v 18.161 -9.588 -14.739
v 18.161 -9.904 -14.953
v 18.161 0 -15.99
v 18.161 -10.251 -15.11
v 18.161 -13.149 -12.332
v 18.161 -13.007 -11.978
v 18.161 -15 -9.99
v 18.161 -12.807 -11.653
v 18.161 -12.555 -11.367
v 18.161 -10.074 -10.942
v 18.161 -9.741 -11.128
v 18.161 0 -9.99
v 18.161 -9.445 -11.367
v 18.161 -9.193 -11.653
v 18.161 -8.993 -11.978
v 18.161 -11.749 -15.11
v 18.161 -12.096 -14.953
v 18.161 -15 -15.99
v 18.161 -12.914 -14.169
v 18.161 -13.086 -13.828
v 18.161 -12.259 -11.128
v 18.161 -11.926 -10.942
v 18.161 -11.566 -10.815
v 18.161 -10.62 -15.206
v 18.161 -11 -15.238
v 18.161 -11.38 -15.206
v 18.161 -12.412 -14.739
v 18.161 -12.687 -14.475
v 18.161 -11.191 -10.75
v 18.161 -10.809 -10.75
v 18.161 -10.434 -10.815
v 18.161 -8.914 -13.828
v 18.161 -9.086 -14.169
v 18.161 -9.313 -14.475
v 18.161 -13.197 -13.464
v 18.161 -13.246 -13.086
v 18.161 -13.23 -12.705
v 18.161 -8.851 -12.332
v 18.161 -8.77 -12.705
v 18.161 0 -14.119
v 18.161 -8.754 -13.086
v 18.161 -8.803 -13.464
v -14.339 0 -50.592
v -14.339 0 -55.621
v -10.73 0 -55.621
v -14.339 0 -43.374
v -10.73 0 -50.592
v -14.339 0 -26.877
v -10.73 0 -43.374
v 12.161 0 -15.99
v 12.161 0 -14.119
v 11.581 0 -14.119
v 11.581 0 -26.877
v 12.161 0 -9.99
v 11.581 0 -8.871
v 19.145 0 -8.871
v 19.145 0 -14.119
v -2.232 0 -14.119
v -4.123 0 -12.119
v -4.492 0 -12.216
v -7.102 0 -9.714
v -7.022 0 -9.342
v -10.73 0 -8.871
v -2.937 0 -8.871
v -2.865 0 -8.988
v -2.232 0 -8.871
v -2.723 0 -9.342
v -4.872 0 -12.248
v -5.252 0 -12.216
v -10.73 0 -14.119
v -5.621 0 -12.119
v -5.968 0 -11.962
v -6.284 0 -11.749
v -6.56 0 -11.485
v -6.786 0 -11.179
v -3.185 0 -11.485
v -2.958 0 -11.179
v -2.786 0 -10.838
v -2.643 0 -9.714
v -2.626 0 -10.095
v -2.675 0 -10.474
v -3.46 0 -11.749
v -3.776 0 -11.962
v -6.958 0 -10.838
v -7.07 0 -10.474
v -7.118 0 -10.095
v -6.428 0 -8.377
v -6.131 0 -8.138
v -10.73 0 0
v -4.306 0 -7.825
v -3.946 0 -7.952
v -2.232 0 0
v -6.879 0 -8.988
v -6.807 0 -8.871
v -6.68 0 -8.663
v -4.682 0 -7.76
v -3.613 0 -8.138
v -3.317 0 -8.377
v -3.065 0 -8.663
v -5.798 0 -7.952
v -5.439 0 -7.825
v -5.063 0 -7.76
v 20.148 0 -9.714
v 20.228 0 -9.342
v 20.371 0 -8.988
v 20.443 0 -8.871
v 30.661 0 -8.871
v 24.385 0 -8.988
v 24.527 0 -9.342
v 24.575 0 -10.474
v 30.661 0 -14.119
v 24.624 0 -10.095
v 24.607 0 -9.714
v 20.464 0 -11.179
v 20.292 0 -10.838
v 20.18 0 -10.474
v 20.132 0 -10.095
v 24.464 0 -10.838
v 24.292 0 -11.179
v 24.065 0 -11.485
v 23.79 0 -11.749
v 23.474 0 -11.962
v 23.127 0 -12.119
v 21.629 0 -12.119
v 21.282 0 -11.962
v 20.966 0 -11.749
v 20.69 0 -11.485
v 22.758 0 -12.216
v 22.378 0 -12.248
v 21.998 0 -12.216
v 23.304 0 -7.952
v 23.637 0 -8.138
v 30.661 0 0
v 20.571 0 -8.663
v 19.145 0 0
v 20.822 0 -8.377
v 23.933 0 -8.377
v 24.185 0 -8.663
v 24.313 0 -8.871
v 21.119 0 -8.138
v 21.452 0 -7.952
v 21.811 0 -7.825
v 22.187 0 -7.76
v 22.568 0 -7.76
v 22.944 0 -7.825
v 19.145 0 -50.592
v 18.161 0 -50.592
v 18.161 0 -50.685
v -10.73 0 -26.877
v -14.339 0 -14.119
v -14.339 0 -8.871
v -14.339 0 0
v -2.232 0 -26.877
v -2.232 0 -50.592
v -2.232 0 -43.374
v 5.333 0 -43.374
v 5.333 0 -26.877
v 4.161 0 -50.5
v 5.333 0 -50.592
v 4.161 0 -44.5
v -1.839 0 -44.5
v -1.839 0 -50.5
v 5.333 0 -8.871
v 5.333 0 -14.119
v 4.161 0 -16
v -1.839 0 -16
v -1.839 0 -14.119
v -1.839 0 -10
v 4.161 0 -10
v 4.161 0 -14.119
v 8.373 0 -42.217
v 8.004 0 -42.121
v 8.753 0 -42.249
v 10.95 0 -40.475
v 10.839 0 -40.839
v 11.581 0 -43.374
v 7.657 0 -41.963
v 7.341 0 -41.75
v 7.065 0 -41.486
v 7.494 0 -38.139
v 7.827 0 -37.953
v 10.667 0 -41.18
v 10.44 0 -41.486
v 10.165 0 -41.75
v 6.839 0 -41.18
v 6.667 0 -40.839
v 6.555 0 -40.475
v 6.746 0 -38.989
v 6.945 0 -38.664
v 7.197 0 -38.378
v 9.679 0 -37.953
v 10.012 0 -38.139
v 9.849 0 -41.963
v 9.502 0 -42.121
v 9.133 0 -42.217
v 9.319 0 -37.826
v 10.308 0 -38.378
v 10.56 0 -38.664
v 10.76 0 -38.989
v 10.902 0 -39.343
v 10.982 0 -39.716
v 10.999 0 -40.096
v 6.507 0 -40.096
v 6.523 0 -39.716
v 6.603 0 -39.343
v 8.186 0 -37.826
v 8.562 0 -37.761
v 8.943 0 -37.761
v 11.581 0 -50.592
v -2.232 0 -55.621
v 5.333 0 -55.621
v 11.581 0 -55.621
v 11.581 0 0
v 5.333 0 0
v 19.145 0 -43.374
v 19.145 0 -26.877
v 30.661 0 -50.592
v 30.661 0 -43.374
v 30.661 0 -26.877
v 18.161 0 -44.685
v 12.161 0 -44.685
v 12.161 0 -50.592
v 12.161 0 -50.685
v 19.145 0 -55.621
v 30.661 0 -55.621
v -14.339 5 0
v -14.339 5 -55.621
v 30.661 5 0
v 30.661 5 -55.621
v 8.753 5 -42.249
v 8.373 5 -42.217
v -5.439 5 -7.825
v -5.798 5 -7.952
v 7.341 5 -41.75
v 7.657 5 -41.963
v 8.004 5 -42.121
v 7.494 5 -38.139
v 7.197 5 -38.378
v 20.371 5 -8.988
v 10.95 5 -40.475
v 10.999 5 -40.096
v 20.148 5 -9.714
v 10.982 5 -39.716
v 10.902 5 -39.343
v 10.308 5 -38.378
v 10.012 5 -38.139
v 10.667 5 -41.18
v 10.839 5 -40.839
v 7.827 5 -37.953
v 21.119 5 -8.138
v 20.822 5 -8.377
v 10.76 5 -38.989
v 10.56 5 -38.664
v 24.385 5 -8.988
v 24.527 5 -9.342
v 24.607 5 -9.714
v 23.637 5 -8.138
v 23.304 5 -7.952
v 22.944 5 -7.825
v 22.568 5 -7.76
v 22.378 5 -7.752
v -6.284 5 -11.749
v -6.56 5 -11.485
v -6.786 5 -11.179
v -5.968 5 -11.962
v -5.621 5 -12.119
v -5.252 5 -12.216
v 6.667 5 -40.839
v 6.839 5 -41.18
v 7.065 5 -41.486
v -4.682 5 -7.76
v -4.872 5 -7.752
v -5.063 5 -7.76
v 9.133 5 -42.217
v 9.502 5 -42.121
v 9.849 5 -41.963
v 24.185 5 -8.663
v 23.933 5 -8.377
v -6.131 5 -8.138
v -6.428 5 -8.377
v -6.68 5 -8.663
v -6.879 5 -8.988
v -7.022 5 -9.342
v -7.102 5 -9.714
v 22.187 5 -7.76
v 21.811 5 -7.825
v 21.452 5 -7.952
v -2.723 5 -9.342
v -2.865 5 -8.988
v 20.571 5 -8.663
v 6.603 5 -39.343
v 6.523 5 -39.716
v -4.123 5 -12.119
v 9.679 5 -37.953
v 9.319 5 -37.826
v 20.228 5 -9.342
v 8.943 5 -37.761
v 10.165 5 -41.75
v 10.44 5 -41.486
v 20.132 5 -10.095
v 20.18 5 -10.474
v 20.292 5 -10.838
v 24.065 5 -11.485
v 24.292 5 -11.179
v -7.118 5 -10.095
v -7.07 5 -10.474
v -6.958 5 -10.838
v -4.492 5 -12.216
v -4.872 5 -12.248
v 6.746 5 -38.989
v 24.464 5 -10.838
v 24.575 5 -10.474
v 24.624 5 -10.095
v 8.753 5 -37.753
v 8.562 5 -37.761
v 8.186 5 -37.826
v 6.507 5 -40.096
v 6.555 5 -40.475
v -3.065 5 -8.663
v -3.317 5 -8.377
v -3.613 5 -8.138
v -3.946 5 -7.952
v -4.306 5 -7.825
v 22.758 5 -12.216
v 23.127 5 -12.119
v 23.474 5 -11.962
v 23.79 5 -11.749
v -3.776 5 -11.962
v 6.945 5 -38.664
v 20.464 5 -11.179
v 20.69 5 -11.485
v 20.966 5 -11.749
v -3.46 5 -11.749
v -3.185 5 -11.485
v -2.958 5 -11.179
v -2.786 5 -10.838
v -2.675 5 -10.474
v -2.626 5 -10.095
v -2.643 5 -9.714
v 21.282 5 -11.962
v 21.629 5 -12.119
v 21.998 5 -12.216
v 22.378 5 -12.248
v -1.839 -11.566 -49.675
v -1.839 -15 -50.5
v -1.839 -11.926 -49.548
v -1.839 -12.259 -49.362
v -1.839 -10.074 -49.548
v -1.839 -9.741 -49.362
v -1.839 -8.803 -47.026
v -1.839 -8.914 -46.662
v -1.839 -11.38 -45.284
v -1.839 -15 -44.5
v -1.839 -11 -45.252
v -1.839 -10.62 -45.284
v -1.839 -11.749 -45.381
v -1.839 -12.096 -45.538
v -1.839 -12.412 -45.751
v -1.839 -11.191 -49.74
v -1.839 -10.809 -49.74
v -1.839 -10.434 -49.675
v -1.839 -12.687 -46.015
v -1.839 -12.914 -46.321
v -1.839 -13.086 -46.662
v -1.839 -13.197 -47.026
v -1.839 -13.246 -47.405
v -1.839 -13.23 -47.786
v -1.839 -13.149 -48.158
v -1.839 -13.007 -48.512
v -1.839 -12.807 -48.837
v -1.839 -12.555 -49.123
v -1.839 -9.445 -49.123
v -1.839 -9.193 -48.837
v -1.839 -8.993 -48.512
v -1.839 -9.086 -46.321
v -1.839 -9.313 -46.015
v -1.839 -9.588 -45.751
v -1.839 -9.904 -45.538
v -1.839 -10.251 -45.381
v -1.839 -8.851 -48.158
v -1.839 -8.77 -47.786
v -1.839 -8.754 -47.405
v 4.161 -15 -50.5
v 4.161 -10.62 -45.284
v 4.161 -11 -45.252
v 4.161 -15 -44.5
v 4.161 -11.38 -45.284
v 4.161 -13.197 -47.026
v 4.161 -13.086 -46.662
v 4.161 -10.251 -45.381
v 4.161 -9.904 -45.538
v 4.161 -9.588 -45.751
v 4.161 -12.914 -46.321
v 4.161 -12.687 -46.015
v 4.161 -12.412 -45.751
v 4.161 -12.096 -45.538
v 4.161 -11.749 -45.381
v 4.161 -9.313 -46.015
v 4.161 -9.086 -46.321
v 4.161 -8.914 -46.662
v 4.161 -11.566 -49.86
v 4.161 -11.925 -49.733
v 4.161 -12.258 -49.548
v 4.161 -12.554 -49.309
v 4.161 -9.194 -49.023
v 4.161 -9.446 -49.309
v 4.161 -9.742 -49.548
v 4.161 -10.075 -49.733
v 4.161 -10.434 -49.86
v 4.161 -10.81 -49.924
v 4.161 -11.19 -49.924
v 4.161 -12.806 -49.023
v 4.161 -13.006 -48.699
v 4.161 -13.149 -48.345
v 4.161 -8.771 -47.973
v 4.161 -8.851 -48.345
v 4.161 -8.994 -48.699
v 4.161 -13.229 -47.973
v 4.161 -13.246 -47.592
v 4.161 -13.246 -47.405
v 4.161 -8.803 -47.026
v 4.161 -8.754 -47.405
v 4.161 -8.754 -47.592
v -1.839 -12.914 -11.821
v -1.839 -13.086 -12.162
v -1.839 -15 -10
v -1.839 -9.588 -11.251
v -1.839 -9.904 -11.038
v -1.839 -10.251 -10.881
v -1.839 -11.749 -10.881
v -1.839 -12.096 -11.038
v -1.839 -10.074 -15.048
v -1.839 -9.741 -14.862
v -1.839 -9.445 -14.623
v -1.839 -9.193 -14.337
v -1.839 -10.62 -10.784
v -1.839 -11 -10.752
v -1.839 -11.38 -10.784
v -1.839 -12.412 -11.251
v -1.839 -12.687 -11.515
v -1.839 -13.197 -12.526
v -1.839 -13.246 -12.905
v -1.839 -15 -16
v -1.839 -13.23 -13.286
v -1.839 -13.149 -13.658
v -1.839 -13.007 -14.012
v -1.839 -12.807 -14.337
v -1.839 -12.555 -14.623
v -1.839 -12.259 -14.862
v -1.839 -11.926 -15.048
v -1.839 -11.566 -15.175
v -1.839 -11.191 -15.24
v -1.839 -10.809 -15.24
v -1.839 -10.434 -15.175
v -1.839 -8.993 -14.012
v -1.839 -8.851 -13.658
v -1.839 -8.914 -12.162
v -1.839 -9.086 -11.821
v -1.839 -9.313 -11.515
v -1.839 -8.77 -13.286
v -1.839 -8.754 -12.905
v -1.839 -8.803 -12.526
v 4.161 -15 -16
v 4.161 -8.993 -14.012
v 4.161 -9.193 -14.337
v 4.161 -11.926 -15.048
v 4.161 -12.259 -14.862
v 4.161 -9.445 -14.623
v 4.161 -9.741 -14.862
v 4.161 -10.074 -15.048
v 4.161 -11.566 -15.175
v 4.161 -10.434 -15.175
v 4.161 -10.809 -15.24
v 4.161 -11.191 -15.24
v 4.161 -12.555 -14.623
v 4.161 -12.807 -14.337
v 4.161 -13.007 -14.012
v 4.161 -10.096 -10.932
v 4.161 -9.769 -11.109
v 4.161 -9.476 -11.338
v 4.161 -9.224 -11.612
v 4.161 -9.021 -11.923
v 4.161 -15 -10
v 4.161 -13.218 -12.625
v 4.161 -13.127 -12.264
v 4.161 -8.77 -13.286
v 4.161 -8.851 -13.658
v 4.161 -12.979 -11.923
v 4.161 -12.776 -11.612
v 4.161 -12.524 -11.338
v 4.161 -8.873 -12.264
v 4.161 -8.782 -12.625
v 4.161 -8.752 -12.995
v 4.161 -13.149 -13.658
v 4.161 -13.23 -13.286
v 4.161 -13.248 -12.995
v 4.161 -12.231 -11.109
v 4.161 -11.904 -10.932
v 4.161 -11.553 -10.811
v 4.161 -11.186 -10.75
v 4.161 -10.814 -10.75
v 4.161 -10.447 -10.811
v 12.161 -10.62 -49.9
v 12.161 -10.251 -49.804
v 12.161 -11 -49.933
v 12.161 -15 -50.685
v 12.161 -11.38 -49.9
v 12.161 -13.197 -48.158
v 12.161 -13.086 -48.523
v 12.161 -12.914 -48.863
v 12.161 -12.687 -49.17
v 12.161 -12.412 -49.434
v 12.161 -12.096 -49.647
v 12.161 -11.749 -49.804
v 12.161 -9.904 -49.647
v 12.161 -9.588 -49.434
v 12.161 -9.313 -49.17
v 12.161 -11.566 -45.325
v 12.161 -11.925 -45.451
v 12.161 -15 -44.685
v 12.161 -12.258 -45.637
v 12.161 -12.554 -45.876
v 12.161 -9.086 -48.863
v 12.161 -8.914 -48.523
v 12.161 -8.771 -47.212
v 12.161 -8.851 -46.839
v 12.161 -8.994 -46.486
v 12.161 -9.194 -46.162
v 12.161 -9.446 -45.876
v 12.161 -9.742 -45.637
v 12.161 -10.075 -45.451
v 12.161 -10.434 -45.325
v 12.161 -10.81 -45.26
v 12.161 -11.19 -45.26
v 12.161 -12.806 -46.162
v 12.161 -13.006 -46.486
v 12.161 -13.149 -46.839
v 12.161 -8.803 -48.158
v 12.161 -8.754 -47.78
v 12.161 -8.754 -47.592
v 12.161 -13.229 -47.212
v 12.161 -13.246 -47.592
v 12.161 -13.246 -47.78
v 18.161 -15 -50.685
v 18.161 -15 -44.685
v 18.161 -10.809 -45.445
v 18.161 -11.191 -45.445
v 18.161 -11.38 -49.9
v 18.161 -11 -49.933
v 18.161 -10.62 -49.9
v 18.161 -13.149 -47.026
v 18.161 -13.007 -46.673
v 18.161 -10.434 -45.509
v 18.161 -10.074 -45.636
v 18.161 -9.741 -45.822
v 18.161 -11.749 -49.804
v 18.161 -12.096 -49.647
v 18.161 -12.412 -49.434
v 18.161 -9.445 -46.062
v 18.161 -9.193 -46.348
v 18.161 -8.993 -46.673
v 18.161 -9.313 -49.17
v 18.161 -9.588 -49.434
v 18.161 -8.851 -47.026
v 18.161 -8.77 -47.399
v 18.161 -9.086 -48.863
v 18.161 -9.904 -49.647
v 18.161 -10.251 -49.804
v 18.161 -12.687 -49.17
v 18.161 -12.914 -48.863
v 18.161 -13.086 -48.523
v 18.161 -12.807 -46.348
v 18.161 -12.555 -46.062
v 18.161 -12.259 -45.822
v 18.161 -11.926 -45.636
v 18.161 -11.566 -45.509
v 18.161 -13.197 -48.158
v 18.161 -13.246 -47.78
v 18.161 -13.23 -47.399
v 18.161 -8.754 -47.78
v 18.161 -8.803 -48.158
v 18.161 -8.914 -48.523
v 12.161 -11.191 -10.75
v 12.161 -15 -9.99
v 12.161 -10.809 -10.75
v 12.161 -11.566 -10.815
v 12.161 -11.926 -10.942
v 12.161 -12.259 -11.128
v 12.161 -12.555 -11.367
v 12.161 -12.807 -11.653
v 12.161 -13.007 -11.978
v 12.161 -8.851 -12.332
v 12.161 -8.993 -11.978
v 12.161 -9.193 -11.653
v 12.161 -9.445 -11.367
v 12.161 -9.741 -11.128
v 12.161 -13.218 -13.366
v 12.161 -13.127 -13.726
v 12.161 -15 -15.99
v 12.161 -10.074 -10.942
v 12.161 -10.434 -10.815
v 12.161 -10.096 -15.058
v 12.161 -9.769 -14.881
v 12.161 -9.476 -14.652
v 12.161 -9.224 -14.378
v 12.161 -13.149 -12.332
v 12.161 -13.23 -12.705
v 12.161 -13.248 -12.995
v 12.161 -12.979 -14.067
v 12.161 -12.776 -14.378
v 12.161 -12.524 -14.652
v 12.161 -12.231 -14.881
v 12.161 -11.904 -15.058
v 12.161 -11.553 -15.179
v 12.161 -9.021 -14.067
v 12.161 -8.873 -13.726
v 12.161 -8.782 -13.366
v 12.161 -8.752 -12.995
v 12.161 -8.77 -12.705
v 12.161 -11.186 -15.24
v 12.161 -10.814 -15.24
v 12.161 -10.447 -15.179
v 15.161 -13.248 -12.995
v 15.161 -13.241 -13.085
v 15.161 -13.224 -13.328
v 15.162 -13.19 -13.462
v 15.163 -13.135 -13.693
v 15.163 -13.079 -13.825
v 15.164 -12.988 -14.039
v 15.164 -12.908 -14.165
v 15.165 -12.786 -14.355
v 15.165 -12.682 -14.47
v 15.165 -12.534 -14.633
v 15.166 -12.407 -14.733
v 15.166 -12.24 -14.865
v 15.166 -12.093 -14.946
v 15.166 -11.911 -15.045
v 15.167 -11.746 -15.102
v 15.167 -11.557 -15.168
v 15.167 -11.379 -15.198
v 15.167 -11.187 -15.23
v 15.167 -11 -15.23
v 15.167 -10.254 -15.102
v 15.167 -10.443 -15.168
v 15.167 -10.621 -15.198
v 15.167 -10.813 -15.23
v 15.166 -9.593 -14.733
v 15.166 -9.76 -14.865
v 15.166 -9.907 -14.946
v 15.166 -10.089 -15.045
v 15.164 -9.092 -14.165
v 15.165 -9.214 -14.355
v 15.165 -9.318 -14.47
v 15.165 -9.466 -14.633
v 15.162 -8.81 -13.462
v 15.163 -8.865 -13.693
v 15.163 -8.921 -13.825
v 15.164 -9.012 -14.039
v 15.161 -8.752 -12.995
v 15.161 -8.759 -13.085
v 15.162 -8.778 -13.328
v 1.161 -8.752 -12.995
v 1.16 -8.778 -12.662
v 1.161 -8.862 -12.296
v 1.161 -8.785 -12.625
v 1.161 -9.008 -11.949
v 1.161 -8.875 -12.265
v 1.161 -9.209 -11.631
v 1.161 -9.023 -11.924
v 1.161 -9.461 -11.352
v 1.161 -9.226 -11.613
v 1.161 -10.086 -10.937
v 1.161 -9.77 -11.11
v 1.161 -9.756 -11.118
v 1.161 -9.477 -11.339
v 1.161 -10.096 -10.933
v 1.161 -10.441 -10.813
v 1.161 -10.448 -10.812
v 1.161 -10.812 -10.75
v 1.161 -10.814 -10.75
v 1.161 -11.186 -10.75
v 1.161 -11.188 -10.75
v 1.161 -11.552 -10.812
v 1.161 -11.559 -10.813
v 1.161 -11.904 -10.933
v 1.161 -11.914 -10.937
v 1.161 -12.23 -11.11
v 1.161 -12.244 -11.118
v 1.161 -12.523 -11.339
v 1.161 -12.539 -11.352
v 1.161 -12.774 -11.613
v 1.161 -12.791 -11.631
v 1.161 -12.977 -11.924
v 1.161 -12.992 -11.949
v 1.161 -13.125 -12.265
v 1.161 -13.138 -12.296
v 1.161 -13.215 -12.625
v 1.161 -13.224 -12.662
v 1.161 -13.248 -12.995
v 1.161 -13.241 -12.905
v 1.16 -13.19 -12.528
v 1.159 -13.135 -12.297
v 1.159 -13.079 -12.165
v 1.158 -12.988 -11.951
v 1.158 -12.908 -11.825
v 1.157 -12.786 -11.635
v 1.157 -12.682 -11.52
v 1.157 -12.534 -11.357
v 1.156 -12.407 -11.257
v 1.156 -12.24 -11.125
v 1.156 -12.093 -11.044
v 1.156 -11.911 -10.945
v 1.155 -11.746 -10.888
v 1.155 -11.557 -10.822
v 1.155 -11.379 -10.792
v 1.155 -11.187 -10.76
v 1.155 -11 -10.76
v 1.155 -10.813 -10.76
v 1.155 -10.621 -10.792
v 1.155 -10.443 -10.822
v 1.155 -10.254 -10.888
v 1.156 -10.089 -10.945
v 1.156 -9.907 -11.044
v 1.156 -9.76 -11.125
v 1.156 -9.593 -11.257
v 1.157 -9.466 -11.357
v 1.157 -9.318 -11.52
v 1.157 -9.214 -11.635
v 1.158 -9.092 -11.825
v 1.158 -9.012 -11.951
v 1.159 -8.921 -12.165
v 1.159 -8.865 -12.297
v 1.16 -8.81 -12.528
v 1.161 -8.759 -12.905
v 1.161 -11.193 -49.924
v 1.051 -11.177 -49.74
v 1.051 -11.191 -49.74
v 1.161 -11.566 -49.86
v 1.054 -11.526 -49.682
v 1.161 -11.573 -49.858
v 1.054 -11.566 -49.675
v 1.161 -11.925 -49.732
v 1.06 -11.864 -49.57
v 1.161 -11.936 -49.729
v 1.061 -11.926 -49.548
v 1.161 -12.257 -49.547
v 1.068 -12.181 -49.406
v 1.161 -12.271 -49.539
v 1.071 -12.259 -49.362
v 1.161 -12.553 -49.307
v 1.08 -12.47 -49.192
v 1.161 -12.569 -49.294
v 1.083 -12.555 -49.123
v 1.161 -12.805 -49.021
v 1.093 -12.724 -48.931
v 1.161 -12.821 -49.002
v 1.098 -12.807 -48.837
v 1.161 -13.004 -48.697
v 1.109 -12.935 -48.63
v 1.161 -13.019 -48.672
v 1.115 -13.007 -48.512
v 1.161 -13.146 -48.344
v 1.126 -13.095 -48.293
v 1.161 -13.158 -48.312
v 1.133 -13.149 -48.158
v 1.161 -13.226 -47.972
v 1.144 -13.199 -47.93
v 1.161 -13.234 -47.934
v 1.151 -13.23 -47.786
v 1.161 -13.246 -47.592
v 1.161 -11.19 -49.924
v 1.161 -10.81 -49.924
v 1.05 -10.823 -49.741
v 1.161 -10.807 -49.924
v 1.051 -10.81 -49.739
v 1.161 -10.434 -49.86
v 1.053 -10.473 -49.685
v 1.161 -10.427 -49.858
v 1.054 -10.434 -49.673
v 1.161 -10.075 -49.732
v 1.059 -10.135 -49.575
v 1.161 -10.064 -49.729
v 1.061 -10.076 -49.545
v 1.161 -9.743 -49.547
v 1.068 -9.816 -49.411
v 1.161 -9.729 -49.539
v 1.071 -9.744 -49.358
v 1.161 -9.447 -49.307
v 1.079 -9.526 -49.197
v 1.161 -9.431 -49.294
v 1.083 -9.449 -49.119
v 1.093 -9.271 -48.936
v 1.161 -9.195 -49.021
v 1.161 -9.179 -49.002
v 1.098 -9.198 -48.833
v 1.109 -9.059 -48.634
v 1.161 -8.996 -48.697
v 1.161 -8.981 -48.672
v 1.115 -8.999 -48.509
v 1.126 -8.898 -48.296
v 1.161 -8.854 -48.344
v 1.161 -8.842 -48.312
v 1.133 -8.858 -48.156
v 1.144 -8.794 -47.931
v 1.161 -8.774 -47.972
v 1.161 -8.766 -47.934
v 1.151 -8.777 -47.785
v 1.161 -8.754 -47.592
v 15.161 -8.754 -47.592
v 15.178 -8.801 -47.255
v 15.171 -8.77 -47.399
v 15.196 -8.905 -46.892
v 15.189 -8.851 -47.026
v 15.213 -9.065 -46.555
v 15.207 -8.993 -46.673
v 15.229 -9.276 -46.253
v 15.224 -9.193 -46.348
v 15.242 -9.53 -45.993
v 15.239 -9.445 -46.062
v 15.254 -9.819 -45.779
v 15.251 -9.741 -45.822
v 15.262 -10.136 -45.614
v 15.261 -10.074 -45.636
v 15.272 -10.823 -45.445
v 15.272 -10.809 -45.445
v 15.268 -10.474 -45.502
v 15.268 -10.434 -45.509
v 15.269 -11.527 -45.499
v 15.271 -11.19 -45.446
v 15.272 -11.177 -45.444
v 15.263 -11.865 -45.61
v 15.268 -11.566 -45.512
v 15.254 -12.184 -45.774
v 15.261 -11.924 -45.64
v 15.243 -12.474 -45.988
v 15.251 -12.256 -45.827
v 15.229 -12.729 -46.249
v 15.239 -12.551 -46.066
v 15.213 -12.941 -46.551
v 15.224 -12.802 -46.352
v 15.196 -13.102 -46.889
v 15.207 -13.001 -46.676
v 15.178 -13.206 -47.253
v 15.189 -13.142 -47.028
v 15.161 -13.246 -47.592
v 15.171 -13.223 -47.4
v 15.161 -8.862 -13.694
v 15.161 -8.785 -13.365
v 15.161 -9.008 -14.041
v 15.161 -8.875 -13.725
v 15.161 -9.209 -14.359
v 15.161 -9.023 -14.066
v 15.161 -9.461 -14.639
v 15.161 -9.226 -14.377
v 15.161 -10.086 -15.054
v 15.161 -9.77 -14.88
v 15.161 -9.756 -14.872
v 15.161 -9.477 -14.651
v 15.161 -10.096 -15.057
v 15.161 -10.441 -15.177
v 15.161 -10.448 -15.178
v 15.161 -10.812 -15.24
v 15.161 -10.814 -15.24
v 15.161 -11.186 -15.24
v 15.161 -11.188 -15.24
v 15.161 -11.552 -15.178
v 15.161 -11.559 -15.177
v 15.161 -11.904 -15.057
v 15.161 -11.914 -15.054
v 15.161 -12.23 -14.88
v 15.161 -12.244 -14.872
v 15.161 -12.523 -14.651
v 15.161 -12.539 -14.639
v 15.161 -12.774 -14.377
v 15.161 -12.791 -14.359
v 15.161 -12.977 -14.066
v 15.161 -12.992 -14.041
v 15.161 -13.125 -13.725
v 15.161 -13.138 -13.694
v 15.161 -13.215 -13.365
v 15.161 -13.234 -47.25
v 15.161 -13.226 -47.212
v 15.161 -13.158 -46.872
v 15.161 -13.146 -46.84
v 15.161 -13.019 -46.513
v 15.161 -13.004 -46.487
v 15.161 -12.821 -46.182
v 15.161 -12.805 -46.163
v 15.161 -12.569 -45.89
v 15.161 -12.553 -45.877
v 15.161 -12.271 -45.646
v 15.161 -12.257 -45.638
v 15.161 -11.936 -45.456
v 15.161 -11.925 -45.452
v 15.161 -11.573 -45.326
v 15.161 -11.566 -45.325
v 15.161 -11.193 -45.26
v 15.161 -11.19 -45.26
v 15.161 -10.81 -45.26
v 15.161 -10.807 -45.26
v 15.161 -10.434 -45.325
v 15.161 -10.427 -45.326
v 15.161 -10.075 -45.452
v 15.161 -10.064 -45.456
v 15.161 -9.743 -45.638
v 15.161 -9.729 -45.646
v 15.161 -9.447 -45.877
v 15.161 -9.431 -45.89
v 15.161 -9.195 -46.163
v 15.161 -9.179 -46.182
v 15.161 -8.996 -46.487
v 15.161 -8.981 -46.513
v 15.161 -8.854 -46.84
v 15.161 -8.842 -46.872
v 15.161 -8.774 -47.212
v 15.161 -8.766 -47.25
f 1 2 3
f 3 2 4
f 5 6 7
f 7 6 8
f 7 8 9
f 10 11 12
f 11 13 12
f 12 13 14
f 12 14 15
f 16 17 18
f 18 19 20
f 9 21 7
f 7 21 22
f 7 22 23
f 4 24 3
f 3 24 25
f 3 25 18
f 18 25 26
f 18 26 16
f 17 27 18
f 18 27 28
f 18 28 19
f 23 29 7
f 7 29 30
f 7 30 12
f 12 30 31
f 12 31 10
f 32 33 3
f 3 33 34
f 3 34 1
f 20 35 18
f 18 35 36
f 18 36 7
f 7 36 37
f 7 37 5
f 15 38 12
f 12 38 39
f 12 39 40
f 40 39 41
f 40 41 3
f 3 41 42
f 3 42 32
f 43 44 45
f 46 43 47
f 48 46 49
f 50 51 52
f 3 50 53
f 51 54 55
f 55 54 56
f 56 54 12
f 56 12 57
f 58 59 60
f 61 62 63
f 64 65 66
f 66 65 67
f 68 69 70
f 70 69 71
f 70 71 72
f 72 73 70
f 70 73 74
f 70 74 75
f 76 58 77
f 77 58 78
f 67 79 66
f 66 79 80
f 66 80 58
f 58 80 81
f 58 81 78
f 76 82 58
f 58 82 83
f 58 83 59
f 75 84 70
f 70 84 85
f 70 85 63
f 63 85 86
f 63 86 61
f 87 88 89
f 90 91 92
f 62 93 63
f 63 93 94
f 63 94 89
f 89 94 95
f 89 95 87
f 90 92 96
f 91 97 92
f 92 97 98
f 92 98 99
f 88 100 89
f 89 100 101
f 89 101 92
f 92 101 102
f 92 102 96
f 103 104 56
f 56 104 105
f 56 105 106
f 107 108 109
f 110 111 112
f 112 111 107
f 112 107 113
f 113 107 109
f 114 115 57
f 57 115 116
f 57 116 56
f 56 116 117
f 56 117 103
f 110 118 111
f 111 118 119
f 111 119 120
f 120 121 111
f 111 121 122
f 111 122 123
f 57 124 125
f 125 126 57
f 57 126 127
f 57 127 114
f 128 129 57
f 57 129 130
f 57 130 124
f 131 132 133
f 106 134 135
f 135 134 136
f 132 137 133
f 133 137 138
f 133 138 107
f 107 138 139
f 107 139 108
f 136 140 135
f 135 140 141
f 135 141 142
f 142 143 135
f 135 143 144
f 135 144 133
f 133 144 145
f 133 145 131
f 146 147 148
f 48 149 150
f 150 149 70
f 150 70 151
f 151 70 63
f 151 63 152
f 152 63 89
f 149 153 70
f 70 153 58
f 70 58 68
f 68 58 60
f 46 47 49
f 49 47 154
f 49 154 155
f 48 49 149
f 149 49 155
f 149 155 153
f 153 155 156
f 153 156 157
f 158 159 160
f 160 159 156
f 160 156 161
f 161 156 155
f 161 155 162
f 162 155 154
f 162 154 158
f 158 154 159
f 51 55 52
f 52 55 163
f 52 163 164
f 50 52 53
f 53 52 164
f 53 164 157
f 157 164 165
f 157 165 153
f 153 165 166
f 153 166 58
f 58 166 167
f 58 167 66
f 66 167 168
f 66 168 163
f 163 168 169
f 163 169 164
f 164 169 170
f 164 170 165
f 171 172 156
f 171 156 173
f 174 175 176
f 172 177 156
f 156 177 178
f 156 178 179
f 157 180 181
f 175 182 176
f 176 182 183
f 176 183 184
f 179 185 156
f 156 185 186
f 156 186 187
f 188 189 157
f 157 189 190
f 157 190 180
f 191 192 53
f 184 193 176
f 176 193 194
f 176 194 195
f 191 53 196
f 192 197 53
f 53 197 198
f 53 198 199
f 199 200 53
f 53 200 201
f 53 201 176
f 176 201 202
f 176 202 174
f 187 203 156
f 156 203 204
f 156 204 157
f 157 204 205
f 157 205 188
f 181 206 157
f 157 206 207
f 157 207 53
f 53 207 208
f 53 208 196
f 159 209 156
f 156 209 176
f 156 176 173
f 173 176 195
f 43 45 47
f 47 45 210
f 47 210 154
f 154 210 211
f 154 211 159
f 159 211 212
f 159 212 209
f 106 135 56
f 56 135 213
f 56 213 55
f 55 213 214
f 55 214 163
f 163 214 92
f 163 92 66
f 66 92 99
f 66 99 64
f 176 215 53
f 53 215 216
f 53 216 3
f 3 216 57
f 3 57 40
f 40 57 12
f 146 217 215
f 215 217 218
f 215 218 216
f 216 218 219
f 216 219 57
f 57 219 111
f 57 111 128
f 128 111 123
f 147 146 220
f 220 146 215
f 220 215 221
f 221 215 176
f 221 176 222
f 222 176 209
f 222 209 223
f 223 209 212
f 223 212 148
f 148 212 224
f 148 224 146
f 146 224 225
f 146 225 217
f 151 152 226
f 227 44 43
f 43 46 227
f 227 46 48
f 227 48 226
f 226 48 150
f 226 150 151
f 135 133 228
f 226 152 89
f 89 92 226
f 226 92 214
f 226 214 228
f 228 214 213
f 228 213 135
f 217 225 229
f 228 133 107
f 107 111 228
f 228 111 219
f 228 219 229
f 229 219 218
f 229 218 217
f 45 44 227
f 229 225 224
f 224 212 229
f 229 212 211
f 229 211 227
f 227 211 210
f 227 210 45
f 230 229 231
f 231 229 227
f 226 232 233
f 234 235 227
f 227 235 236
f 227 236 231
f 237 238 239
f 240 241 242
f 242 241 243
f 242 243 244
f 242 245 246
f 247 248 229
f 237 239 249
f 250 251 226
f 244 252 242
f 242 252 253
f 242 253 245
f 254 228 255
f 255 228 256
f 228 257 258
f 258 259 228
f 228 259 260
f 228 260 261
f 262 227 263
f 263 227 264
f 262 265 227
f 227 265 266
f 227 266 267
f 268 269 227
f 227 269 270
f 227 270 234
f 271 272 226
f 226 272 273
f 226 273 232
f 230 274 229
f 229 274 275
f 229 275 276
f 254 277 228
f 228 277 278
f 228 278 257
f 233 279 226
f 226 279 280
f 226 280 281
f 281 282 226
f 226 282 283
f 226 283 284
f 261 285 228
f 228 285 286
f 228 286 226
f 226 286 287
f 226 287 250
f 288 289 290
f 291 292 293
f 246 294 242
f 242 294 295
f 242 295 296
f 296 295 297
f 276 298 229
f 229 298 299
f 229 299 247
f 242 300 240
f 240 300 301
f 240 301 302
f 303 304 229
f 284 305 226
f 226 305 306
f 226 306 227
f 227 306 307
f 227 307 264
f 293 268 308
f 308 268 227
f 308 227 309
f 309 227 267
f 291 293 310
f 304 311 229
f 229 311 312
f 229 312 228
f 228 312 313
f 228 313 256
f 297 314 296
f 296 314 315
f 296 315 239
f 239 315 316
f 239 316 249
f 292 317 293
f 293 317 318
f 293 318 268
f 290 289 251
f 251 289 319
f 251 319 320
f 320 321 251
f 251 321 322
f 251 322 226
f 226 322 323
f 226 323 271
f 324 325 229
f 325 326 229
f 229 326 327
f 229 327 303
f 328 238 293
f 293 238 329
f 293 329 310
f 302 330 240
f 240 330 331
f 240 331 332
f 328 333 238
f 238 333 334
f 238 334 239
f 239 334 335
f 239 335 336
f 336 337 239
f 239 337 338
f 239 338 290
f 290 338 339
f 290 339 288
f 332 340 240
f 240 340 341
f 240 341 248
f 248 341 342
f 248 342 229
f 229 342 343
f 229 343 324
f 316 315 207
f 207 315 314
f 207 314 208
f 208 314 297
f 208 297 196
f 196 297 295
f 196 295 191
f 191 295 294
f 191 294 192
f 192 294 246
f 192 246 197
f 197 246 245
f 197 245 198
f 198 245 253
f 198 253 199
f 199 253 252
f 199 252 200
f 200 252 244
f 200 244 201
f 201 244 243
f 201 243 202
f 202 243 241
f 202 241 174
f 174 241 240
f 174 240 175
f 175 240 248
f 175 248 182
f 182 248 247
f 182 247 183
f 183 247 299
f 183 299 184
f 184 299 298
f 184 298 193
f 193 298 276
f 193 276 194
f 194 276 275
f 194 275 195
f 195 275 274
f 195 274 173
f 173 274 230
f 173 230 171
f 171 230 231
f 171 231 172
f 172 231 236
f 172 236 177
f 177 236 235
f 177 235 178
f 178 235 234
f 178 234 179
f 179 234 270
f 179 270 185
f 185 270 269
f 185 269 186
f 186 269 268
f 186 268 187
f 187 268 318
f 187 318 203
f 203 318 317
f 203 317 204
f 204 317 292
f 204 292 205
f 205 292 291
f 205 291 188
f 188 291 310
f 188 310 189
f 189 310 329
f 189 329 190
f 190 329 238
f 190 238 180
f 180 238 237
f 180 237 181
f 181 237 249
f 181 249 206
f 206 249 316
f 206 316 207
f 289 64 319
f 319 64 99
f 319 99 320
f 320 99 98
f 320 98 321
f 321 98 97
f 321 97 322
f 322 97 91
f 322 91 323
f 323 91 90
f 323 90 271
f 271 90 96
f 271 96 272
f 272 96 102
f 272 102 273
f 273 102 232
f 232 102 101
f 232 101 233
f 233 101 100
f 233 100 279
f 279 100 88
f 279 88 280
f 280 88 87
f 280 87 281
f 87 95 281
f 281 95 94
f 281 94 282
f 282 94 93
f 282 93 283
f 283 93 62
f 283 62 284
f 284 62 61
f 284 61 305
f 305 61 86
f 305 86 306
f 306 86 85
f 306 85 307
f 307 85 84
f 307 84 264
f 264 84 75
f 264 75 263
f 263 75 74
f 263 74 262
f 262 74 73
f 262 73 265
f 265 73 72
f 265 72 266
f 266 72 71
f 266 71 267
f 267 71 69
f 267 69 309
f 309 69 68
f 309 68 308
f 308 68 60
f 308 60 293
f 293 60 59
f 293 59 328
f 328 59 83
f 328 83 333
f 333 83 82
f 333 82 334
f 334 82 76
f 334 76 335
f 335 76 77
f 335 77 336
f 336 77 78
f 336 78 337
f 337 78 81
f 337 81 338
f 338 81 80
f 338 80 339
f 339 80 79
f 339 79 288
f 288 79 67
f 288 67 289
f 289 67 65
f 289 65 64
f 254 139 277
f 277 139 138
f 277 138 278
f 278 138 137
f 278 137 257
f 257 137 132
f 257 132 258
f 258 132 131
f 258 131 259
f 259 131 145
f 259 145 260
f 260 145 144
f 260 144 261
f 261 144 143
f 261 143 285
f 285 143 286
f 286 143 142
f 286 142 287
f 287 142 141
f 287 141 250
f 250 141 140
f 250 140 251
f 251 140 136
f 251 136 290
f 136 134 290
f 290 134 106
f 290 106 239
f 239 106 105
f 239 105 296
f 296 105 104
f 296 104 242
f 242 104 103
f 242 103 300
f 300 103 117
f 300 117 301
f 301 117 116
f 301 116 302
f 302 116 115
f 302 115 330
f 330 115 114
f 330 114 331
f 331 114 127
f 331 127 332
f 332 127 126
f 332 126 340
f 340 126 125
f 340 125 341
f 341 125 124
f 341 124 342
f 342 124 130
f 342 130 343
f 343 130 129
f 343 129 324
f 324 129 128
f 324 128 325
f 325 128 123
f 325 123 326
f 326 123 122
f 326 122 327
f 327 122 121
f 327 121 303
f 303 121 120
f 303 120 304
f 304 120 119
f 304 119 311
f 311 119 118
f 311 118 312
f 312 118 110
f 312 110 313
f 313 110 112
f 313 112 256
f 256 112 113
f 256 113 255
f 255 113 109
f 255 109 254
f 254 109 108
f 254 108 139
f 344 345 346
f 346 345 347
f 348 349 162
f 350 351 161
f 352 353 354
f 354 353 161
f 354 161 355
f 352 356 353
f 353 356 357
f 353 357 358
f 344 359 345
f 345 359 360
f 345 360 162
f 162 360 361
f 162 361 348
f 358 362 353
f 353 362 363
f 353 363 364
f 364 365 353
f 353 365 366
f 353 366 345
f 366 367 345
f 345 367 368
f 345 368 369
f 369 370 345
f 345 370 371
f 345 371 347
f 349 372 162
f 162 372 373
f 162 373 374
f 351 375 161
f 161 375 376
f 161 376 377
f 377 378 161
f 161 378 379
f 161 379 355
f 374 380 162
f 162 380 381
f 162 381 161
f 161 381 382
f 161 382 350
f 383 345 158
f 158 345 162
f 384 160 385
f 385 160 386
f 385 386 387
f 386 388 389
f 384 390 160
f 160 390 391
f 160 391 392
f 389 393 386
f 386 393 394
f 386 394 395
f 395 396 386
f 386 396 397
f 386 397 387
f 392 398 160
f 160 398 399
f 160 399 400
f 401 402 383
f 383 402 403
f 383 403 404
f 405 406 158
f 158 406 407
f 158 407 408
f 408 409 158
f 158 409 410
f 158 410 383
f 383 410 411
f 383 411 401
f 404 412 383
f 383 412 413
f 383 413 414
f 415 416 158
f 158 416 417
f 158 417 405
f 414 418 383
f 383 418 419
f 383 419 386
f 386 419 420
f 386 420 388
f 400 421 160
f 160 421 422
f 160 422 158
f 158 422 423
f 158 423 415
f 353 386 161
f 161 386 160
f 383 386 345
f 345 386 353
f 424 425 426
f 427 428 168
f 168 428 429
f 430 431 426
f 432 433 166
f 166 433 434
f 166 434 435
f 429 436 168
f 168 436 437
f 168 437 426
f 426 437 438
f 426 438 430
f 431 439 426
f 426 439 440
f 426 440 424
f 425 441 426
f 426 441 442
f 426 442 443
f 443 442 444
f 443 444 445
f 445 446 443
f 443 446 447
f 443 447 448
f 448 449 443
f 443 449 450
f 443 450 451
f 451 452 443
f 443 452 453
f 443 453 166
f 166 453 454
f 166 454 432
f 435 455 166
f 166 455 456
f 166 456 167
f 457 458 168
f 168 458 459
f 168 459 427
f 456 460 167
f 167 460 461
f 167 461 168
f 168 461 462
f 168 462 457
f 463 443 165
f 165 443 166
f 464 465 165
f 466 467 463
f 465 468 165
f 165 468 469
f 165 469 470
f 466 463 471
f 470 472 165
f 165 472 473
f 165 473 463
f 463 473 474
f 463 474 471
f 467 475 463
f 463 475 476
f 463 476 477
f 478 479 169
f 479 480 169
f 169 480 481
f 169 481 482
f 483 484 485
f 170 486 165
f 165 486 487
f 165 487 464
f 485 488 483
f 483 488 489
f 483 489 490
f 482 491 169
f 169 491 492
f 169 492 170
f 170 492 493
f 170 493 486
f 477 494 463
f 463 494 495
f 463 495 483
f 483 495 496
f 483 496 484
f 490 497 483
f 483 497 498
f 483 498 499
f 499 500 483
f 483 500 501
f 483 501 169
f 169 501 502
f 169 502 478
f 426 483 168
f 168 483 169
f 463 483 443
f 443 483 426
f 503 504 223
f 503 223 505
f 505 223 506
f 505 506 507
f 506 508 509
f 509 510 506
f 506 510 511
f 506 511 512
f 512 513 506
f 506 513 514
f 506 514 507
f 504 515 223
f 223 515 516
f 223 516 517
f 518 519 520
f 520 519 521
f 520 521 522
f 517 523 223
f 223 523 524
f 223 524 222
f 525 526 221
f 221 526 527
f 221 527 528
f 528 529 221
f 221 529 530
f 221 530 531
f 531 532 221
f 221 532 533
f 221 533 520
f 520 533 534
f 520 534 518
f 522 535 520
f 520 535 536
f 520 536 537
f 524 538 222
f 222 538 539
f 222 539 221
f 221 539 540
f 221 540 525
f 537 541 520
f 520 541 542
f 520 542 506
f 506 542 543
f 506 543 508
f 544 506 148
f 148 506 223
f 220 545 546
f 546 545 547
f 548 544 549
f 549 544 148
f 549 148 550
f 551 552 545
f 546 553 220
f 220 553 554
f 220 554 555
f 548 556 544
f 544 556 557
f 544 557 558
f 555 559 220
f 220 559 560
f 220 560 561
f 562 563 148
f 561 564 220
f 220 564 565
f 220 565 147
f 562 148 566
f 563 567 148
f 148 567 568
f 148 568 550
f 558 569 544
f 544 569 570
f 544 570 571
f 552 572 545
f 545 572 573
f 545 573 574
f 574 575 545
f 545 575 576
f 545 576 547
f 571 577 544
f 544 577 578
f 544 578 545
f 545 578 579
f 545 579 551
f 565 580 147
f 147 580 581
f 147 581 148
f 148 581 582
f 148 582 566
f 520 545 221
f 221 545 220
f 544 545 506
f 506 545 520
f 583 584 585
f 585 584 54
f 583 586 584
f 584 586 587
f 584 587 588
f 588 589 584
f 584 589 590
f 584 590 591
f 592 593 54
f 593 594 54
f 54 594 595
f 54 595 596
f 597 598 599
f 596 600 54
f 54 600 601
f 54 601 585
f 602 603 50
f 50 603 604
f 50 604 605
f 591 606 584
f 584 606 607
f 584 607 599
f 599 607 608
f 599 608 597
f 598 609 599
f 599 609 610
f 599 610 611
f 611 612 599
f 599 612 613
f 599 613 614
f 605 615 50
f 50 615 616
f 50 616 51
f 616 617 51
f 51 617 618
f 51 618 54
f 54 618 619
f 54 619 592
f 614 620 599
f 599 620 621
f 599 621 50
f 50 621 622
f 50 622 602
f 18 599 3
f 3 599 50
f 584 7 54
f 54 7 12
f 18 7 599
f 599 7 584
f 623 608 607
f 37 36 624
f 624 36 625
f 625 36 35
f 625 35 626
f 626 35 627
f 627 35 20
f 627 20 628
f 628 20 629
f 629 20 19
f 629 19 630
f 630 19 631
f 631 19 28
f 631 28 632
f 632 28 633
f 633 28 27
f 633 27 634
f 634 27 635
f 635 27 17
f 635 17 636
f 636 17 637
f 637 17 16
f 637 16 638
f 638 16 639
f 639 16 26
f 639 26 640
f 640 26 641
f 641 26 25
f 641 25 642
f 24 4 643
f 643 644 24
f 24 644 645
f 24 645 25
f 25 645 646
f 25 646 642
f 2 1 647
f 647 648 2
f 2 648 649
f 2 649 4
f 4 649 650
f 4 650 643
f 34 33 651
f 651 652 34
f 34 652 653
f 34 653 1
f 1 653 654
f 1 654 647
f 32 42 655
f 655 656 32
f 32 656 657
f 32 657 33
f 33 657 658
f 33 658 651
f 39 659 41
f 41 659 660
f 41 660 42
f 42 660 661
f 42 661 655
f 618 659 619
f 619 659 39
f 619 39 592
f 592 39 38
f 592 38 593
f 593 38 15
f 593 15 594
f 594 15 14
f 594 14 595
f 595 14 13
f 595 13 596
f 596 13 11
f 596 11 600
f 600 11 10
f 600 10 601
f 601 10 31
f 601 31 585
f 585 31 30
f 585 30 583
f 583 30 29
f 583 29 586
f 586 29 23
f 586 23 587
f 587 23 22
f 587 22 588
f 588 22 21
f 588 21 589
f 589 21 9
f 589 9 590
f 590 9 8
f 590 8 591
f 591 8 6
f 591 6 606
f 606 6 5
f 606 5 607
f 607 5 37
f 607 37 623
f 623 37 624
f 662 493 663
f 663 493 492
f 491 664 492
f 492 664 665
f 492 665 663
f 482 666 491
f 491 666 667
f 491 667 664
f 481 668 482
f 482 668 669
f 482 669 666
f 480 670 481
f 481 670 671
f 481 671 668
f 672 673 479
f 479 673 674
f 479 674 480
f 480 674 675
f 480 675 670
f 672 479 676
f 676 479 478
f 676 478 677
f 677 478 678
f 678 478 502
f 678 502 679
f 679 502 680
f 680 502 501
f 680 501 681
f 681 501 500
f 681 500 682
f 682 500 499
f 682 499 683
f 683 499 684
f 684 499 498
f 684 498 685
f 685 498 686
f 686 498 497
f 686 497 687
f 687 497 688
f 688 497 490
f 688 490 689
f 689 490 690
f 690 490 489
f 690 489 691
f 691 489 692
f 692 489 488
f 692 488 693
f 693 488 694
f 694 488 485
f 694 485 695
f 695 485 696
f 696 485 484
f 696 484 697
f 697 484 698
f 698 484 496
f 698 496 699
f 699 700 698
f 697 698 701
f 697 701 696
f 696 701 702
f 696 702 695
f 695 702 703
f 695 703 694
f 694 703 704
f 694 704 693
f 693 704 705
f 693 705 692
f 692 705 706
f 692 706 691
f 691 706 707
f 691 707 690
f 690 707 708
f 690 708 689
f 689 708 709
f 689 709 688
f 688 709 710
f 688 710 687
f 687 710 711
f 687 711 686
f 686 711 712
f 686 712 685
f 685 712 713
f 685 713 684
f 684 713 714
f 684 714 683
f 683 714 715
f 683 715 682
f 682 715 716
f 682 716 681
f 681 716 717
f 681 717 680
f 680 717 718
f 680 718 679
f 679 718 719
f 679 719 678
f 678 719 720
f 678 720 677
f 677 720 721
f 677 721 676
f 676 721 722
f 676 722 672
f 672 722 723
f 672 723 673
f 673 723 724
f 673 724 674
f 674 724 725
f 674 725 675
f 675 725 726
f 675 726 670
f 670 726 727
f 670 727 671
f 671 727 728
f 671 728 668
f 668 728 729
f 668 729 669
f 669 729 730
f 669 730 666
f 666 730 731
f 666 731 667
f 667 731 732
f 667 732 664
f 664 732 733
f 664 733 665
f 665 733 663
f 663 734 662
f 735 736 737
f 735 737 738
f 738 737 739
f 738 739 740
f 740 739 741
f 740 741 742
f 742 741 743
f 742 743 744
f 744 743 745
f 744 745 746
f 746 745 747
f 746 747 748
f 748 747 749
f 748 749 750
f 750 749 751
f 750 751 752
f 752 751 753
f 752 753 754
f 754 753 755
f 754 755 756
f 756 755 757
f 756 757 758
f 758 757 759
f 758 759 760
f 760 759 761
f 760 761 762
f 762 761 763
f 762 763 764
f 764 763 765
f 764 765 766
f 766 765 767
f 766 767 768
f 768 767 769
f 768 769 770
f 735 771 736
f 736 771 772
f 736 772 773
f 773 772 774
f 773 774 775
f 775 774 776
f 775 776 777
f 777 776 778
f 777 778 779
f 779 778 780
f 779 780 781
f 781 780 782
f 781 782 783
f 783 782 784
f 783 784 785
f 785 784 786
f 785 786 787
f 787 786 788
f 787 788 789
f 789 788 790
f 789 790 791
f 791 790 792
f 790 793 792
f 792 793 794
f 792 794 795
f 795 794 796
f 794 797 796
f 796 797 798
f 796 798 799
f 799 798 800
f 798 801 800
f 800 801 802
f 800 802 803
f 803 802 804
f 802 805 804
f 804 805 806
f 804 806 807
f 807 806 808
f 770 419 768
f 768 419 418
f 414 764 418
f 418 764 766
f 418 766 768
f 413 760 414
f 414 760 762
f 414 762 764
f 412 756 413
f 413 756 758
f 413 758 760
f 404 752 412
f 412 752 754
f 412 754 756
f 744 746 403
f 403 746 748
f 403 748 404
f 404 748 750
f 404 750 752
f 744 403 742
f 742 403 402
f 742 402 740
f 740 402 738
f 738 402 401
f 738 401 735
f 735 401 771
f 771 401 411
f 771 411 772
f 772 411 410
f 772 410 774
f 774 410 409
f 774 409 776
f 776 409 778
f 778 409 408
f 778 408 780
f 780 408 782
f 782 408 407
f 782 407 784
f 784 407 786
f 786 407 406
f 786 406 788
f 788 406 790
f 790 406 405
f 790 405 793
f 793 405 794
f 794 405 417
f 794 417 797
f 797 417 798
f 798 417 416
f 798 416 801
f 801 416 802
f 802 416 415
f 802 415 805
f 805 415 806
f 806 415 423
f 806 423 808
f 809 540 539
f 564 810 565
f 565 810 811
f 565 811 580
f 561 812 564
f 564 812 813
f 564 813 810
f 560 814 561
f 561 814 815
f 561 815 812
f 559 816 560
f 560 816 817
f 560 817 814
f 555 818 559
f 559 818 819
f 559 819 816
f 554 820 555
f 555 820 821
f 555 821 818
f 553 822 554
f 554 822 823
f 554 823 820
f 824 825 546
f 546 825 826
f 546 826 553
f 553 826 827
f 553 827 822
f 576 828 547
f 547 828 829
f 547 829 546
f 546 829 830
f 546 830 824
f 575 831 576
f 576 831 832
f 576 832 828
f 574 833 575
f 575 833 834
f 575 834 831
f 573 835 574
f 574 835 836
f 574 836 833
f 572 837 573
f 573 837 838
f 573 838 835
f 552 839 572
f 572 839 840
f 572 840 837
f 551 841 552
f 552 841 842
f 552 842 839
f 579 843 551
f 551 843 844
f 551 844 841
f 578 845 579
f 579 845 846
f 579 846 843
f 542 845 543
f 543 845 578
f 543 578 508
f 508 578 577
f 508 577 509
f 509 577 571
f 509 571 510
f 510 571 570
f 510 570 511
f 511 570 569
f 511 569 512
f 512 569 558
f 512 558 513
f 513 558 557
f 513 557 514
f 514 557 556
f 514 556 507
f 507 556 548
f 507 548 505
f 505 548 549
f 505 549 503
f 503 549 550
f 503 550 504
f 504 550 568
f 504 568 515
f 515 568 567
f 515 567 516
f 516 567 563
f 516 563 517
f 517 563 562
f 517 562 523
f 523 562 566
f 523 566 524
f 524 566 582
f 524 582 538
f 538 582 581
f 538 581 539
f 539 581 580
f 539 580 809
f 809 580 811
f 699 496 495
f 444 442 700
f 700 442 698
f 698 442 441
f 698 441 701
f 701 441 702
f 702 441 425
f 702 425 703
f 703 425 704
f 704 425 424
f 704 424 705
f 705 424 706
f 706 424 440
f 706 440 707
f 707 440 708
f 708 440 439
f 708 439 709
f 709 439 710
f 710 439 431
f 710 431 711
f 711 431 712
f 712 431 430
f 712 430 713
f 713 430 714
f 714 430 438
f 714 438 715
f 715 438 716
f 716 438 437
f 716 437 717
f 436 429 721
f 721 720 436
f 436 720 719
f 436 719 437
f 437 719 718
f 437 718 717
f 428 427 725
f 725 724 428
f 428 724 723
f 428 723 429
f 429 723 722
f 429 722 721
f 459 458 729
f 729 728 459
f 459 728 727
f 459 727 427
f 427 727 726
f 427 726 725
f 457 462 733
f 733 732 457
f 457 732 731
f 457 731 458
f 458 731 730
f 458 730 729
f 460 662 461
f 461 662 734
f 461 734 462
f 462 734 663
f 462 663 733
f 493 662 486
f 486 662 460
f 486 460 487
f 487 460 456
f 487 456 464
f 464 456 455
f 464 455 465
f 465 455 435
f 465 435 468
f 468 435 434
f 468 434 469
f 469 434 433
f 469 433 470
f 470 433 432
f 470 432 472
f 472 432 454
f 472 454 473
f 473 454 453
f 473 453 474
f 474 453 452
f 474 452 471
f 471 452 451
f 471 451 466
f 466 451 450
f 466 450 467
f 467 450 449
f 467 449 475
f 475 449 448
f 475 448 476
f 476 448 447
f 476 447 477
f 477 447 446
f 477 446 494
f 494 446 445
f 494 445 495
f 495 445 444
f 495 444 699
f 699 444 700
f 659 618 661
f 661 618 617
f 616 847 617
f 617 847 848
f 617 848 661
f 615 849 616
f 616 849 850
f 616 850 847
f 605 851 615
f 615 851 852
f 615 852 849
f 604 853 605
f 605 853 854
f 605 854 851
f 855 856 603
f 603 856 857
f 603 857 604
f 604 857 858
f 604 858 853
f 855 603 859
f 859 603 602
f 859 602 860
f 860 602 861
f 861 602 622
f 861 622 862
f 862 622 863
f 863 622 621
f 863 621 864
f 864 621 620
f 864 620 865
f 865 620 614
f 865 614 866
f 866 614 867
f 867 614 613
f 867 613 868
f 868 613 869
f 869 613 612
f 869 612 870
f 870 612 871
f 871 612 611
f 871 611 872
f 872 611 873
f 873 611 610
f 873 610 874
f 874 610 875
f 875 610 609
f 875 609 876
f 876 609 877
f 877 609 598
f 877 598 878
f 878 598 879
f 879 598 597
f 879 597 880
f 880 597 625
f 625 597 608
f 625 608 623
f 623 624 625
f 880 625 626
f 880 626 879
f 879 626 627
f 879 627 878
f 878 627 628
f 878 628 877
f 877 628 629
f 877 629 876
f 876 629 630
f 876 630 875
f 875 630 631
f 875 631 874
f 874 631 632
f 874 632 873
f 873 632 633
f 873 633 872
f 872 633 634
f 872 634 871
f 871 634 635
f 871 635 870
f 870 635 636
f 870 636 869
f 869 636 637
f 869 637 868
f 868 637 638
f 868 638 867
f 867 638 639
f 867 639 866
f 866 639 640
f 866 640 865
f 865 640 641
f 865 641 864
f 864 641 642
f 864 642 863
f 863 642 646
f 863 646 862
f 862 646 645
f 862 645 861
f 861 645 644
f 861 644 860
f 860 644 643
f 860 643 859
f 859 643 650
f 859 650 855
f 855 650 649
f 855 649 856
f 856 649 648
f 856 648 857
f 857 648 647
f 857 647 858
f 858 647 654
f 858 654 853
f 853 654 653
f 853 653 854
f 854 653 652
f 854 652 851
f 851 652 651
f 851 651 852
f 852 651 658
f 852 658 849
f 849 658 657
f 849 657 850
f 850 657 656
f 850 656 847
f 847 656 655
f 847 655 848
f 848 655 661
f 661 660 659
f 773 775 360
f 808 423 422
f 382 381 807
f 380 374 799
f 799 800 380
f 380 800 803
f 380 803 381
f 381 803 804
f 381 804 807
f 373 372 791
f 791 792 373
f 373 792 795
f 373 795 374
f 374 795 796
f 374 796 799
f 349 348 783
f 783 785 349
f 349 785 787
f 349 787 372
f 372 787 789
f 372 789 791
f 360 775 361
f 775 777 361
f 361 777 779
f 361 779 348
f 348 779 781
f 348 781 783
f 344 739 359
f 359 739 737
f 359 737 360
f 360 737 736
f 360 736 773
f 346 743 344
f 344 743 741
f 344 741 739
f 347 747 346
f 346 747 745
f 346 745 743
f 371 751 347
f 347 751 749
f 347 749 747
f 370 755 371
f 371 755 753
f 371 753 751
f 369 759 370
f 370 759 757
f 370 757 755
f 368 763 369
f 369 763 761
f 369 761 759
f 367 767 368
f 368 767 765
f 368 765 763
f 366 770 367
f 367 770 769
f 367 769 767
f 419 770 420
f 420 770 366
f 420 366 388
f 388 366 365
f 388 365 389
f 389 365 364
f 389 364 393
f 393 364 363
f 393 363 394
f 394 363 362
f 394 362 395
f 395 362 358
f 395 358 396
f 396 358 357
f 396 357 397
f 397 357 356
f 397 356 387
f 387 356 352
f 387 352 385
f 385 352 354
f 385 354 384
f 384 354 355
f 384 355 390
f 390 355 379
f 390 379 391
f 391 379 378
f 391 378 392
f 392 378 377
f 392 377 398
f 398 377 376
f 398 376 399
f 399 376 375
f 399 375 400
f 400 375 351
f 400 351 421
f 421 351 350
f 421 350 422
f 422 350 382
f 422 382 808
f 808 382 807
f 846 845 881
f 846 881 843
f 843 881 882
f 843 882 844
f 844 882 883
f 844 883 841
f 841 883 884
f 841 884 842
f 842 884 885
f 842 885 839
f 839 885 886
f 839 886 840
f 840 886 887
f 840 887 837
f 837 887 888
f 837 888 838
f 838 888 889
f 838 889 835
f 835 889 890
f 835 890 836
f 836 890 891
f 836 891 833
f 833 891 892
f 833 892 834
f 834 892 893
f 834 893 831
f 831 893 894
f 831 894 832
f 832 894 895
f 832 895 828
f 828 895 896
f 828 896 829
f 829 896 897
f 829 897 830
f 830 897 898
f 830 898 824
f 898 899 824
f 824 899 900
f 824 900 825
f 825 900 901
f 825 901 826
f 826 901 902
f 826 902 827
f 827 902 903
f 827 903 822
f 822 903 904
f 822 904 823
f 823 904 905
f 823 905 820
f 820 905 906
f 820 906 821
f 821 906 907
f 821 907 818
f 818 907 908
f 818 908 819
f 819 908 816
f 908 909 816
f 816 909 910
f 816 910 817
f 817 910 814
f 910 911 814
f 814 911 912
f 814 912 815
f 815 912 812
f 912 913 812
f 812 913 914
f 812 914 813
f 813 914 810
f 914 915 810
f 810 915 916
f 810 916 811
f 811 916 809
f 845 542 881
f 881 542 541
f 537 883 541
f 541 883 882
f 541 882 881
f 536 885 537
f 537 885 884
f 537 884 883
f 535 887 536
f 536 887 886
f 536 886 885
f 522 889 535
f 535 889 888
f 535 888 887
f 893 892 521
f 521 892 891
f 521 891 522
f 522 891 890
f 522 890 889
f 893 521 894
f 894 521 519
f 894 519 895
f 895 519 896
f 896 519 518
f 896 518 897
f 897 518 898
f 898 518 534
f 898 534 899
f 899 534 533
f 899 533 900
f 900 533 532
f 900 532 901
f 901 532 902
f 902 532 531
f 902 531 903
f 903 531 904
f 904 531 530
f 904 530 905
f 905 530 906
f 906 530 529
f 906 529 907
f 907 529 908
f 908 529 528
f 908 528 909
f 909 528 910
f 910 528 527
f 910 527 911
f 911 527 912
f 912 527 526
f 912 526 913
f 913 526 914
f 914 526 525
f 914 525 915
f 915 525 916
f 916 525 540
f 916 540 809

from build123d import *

# Parameters (mm, degrees)
BOSS_EXTRUDE1_DEPTH                 = 5
F_8_CLEARANCE_HOLE1_D               = 4.4958
F_8_CLEARANCE_HOLE1_DEPTH           = 17
F_8_CLEARANCE_HOLE1_TIP             = 1.350674586
SKETCH3_W                           = 6
SKETCH3_H                           = 6
BOSS_EXTRUDE2_DEPTH                 = 15
F_8_CLEARANCE_HOLE2_D               = 4.4958
F_8_CLEARANCE_HOLE2_DEPTH           = 17
F_8_CLEARANCE_HOLE2_TIP             = 1.350674586
F_8_CLEARANCE_HOLE2_ON_FACE_2_D     = 4.4958
F_8_CLEARANCE_HOLE2_ON_FACE_2_DEPTH = 17
F_8_CLEARANCE_HOLE2_ON_FACE_2_TIP   = 1.350674586


with BuildPart() as part:
    # Sketch1 → Boss-Extrude1 (new body)
    with BuildSketch(Plane(origin=(0, 0, 0), x_dir=(1, 0, 0), z_dir=(0, 1, 0))):
        Polygon((-14.338976611, 0), (30.661023389, 0), (30.661023389, 55.621488653), (8.161023389, 55.621488653), (-14.338976611, 55.621488653), align=None)
    extrude(amount=BOSS_EXTRUDE1_DEPTH)

    # #8 Clearance Hole1
    with Locations(Plane(origin=(22.377803879, 0, -10), x_dir=(0, 0, -1), z_dir=(0, -1, 0))):
        with Locations((0, 0), (0, -27.25), (30.001031232, -13.625)):
            Hole(F_8_CLEARANCE_HOLE1_D / 2, depth=F_8_CLEARANCE_HOLE1_DEPTH)
            with Locations((0, 0, -(F_8_CLEARANCE_HOLE1_DEPTH + F_8_CLEARANCE_HOLE1_TIP / 2))):  # 118° drill point
                Cone(0, F_8_CLEARANCE_HOLE1_D / 2, F_8_CLEARANCE_HOLE1_TIP, mode=Mode.SUBTRACT)

    # Sketch3 → Boss-Extrude2 (add)
    with BuildSketch(Plane(origin=(0, 0, 0), x_dir=(-1, 0, 0), z_dir=(0, -1, 0))):
        with Locations((-1.161023389, 47.5)):
            Rectangle(SKETCH3_W, SKETCH3_H)
        with Locations((-1.161023389, 13)):
            Rectangle(SKETCH3_W, SKETCH3_H)
        with Locations((-15.161023389, 47.684631069)):
            Rectangle(SKETCH3_W, SKETCH3_H)
        with Locations((-15.161023389, 12.990172473)):
            Rectangle(SKETCH3_W, SKETCH3_H)
    extrude(amount=BOSS_EXTRUDE2_DEPTH)

    # #8 Clearance Hole2
    with Locations(Plane(origin=(-1.838976611, -11, -47.5), x_dir=(0, 0, -1), z_dir=(-1, 0, 0))):
        with Locations((0, 0), (-34.5, 0)):
            Hole(F_8_CLEARANCE_HOLE2_D / 2, depth=F_8_CLEARANCE_HOLE2_DEPTH)
            with Locations((0, 0, -(F_8_CLEARANCE_HOLE2_DEPTH + F_8_CLEARANCE_HOLE2_TIP / 2))):  # 118° drill point
                Cone(0, F_8_CLEARANCE_HOLE2_D / 2, F_8_CLEARANCE_HOLE2_TIP, mode=Mode.SUBTRACT)

    # #8 Clearance Hole2 on face 2
    with Locations(Plane(origin=(18.161023389, -11, -47.684631069), x_dir=(0, 0, 1), z_dir=(1, 0, 0))):
        with Locations((0, 0), (34.694458596, 0)):
            Hole(F_8_CLEARANCE_HOLE2_ON_FACE_2_D / 2, depth=F_8_CLEARANCE_HOLE2_ON_FACE_2_DEPTH)
            with Locations((0, 0, -(F_8_CLEARANCE_HOLE2_ON_FACE_2_DEPTH + F_8_CLEARANCE_HOLE2_ON_FACE_2_TIP / 2))):  # 118° drill point
                Cone(0, F_8_CLEARANCE_HOLE2_ON_FACE_2_D / 2, F_8_CLEARANCE_HOLE2_ON_FACE_2_TIP, mode=Mode.SUBTRACT)


solid = part.part
